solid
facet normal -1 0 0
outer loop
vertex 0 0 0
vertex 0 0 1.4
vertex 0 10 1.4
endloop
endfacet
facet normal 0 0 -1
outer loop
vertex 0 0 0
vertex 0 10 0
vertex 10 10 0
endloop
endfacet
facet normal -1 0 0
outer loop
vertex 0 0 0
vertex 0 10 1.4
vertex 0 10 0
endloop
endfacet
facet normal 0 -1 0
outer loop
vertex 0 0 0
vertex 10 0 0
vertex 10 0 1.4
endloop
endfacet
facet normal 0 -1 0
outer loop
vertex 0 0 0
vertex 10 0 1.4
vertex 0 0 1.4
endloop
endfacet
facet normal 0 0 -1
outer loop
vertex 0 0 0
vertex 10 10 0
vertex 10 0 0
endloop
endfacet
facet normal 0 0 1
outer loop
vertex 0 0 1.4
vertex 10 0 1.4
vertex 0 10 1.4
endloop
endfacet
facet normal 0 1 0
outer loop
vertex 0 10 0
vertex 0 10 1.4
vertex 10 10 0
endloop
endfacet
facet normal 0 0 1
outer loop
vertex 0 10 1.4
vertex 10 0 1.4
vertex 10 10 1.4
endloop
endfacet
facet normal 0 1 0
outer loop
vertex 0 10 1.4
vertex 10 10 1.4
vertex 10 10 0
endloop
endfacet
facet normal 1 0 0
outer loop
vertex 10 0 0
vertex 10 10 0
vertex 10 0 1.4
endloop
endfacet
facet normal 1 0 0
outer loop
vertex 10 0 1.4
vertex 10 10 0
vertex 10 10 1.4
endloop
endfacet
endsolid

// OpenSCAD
/* Warning, this is a very basic generator with a lot of approximation 
input data : [LQFP, VEX, 10x10x1.4mm, 64, , A, C04-00053A]
generated by com.zoubworld.electronics.cad.model3d.Basic
Date : Sun Feb 15 10:50:48 CET 2026
*/

//body
color("black")
translate([0,0,0])
cube([10.0,10.0,1.4], center=false);
